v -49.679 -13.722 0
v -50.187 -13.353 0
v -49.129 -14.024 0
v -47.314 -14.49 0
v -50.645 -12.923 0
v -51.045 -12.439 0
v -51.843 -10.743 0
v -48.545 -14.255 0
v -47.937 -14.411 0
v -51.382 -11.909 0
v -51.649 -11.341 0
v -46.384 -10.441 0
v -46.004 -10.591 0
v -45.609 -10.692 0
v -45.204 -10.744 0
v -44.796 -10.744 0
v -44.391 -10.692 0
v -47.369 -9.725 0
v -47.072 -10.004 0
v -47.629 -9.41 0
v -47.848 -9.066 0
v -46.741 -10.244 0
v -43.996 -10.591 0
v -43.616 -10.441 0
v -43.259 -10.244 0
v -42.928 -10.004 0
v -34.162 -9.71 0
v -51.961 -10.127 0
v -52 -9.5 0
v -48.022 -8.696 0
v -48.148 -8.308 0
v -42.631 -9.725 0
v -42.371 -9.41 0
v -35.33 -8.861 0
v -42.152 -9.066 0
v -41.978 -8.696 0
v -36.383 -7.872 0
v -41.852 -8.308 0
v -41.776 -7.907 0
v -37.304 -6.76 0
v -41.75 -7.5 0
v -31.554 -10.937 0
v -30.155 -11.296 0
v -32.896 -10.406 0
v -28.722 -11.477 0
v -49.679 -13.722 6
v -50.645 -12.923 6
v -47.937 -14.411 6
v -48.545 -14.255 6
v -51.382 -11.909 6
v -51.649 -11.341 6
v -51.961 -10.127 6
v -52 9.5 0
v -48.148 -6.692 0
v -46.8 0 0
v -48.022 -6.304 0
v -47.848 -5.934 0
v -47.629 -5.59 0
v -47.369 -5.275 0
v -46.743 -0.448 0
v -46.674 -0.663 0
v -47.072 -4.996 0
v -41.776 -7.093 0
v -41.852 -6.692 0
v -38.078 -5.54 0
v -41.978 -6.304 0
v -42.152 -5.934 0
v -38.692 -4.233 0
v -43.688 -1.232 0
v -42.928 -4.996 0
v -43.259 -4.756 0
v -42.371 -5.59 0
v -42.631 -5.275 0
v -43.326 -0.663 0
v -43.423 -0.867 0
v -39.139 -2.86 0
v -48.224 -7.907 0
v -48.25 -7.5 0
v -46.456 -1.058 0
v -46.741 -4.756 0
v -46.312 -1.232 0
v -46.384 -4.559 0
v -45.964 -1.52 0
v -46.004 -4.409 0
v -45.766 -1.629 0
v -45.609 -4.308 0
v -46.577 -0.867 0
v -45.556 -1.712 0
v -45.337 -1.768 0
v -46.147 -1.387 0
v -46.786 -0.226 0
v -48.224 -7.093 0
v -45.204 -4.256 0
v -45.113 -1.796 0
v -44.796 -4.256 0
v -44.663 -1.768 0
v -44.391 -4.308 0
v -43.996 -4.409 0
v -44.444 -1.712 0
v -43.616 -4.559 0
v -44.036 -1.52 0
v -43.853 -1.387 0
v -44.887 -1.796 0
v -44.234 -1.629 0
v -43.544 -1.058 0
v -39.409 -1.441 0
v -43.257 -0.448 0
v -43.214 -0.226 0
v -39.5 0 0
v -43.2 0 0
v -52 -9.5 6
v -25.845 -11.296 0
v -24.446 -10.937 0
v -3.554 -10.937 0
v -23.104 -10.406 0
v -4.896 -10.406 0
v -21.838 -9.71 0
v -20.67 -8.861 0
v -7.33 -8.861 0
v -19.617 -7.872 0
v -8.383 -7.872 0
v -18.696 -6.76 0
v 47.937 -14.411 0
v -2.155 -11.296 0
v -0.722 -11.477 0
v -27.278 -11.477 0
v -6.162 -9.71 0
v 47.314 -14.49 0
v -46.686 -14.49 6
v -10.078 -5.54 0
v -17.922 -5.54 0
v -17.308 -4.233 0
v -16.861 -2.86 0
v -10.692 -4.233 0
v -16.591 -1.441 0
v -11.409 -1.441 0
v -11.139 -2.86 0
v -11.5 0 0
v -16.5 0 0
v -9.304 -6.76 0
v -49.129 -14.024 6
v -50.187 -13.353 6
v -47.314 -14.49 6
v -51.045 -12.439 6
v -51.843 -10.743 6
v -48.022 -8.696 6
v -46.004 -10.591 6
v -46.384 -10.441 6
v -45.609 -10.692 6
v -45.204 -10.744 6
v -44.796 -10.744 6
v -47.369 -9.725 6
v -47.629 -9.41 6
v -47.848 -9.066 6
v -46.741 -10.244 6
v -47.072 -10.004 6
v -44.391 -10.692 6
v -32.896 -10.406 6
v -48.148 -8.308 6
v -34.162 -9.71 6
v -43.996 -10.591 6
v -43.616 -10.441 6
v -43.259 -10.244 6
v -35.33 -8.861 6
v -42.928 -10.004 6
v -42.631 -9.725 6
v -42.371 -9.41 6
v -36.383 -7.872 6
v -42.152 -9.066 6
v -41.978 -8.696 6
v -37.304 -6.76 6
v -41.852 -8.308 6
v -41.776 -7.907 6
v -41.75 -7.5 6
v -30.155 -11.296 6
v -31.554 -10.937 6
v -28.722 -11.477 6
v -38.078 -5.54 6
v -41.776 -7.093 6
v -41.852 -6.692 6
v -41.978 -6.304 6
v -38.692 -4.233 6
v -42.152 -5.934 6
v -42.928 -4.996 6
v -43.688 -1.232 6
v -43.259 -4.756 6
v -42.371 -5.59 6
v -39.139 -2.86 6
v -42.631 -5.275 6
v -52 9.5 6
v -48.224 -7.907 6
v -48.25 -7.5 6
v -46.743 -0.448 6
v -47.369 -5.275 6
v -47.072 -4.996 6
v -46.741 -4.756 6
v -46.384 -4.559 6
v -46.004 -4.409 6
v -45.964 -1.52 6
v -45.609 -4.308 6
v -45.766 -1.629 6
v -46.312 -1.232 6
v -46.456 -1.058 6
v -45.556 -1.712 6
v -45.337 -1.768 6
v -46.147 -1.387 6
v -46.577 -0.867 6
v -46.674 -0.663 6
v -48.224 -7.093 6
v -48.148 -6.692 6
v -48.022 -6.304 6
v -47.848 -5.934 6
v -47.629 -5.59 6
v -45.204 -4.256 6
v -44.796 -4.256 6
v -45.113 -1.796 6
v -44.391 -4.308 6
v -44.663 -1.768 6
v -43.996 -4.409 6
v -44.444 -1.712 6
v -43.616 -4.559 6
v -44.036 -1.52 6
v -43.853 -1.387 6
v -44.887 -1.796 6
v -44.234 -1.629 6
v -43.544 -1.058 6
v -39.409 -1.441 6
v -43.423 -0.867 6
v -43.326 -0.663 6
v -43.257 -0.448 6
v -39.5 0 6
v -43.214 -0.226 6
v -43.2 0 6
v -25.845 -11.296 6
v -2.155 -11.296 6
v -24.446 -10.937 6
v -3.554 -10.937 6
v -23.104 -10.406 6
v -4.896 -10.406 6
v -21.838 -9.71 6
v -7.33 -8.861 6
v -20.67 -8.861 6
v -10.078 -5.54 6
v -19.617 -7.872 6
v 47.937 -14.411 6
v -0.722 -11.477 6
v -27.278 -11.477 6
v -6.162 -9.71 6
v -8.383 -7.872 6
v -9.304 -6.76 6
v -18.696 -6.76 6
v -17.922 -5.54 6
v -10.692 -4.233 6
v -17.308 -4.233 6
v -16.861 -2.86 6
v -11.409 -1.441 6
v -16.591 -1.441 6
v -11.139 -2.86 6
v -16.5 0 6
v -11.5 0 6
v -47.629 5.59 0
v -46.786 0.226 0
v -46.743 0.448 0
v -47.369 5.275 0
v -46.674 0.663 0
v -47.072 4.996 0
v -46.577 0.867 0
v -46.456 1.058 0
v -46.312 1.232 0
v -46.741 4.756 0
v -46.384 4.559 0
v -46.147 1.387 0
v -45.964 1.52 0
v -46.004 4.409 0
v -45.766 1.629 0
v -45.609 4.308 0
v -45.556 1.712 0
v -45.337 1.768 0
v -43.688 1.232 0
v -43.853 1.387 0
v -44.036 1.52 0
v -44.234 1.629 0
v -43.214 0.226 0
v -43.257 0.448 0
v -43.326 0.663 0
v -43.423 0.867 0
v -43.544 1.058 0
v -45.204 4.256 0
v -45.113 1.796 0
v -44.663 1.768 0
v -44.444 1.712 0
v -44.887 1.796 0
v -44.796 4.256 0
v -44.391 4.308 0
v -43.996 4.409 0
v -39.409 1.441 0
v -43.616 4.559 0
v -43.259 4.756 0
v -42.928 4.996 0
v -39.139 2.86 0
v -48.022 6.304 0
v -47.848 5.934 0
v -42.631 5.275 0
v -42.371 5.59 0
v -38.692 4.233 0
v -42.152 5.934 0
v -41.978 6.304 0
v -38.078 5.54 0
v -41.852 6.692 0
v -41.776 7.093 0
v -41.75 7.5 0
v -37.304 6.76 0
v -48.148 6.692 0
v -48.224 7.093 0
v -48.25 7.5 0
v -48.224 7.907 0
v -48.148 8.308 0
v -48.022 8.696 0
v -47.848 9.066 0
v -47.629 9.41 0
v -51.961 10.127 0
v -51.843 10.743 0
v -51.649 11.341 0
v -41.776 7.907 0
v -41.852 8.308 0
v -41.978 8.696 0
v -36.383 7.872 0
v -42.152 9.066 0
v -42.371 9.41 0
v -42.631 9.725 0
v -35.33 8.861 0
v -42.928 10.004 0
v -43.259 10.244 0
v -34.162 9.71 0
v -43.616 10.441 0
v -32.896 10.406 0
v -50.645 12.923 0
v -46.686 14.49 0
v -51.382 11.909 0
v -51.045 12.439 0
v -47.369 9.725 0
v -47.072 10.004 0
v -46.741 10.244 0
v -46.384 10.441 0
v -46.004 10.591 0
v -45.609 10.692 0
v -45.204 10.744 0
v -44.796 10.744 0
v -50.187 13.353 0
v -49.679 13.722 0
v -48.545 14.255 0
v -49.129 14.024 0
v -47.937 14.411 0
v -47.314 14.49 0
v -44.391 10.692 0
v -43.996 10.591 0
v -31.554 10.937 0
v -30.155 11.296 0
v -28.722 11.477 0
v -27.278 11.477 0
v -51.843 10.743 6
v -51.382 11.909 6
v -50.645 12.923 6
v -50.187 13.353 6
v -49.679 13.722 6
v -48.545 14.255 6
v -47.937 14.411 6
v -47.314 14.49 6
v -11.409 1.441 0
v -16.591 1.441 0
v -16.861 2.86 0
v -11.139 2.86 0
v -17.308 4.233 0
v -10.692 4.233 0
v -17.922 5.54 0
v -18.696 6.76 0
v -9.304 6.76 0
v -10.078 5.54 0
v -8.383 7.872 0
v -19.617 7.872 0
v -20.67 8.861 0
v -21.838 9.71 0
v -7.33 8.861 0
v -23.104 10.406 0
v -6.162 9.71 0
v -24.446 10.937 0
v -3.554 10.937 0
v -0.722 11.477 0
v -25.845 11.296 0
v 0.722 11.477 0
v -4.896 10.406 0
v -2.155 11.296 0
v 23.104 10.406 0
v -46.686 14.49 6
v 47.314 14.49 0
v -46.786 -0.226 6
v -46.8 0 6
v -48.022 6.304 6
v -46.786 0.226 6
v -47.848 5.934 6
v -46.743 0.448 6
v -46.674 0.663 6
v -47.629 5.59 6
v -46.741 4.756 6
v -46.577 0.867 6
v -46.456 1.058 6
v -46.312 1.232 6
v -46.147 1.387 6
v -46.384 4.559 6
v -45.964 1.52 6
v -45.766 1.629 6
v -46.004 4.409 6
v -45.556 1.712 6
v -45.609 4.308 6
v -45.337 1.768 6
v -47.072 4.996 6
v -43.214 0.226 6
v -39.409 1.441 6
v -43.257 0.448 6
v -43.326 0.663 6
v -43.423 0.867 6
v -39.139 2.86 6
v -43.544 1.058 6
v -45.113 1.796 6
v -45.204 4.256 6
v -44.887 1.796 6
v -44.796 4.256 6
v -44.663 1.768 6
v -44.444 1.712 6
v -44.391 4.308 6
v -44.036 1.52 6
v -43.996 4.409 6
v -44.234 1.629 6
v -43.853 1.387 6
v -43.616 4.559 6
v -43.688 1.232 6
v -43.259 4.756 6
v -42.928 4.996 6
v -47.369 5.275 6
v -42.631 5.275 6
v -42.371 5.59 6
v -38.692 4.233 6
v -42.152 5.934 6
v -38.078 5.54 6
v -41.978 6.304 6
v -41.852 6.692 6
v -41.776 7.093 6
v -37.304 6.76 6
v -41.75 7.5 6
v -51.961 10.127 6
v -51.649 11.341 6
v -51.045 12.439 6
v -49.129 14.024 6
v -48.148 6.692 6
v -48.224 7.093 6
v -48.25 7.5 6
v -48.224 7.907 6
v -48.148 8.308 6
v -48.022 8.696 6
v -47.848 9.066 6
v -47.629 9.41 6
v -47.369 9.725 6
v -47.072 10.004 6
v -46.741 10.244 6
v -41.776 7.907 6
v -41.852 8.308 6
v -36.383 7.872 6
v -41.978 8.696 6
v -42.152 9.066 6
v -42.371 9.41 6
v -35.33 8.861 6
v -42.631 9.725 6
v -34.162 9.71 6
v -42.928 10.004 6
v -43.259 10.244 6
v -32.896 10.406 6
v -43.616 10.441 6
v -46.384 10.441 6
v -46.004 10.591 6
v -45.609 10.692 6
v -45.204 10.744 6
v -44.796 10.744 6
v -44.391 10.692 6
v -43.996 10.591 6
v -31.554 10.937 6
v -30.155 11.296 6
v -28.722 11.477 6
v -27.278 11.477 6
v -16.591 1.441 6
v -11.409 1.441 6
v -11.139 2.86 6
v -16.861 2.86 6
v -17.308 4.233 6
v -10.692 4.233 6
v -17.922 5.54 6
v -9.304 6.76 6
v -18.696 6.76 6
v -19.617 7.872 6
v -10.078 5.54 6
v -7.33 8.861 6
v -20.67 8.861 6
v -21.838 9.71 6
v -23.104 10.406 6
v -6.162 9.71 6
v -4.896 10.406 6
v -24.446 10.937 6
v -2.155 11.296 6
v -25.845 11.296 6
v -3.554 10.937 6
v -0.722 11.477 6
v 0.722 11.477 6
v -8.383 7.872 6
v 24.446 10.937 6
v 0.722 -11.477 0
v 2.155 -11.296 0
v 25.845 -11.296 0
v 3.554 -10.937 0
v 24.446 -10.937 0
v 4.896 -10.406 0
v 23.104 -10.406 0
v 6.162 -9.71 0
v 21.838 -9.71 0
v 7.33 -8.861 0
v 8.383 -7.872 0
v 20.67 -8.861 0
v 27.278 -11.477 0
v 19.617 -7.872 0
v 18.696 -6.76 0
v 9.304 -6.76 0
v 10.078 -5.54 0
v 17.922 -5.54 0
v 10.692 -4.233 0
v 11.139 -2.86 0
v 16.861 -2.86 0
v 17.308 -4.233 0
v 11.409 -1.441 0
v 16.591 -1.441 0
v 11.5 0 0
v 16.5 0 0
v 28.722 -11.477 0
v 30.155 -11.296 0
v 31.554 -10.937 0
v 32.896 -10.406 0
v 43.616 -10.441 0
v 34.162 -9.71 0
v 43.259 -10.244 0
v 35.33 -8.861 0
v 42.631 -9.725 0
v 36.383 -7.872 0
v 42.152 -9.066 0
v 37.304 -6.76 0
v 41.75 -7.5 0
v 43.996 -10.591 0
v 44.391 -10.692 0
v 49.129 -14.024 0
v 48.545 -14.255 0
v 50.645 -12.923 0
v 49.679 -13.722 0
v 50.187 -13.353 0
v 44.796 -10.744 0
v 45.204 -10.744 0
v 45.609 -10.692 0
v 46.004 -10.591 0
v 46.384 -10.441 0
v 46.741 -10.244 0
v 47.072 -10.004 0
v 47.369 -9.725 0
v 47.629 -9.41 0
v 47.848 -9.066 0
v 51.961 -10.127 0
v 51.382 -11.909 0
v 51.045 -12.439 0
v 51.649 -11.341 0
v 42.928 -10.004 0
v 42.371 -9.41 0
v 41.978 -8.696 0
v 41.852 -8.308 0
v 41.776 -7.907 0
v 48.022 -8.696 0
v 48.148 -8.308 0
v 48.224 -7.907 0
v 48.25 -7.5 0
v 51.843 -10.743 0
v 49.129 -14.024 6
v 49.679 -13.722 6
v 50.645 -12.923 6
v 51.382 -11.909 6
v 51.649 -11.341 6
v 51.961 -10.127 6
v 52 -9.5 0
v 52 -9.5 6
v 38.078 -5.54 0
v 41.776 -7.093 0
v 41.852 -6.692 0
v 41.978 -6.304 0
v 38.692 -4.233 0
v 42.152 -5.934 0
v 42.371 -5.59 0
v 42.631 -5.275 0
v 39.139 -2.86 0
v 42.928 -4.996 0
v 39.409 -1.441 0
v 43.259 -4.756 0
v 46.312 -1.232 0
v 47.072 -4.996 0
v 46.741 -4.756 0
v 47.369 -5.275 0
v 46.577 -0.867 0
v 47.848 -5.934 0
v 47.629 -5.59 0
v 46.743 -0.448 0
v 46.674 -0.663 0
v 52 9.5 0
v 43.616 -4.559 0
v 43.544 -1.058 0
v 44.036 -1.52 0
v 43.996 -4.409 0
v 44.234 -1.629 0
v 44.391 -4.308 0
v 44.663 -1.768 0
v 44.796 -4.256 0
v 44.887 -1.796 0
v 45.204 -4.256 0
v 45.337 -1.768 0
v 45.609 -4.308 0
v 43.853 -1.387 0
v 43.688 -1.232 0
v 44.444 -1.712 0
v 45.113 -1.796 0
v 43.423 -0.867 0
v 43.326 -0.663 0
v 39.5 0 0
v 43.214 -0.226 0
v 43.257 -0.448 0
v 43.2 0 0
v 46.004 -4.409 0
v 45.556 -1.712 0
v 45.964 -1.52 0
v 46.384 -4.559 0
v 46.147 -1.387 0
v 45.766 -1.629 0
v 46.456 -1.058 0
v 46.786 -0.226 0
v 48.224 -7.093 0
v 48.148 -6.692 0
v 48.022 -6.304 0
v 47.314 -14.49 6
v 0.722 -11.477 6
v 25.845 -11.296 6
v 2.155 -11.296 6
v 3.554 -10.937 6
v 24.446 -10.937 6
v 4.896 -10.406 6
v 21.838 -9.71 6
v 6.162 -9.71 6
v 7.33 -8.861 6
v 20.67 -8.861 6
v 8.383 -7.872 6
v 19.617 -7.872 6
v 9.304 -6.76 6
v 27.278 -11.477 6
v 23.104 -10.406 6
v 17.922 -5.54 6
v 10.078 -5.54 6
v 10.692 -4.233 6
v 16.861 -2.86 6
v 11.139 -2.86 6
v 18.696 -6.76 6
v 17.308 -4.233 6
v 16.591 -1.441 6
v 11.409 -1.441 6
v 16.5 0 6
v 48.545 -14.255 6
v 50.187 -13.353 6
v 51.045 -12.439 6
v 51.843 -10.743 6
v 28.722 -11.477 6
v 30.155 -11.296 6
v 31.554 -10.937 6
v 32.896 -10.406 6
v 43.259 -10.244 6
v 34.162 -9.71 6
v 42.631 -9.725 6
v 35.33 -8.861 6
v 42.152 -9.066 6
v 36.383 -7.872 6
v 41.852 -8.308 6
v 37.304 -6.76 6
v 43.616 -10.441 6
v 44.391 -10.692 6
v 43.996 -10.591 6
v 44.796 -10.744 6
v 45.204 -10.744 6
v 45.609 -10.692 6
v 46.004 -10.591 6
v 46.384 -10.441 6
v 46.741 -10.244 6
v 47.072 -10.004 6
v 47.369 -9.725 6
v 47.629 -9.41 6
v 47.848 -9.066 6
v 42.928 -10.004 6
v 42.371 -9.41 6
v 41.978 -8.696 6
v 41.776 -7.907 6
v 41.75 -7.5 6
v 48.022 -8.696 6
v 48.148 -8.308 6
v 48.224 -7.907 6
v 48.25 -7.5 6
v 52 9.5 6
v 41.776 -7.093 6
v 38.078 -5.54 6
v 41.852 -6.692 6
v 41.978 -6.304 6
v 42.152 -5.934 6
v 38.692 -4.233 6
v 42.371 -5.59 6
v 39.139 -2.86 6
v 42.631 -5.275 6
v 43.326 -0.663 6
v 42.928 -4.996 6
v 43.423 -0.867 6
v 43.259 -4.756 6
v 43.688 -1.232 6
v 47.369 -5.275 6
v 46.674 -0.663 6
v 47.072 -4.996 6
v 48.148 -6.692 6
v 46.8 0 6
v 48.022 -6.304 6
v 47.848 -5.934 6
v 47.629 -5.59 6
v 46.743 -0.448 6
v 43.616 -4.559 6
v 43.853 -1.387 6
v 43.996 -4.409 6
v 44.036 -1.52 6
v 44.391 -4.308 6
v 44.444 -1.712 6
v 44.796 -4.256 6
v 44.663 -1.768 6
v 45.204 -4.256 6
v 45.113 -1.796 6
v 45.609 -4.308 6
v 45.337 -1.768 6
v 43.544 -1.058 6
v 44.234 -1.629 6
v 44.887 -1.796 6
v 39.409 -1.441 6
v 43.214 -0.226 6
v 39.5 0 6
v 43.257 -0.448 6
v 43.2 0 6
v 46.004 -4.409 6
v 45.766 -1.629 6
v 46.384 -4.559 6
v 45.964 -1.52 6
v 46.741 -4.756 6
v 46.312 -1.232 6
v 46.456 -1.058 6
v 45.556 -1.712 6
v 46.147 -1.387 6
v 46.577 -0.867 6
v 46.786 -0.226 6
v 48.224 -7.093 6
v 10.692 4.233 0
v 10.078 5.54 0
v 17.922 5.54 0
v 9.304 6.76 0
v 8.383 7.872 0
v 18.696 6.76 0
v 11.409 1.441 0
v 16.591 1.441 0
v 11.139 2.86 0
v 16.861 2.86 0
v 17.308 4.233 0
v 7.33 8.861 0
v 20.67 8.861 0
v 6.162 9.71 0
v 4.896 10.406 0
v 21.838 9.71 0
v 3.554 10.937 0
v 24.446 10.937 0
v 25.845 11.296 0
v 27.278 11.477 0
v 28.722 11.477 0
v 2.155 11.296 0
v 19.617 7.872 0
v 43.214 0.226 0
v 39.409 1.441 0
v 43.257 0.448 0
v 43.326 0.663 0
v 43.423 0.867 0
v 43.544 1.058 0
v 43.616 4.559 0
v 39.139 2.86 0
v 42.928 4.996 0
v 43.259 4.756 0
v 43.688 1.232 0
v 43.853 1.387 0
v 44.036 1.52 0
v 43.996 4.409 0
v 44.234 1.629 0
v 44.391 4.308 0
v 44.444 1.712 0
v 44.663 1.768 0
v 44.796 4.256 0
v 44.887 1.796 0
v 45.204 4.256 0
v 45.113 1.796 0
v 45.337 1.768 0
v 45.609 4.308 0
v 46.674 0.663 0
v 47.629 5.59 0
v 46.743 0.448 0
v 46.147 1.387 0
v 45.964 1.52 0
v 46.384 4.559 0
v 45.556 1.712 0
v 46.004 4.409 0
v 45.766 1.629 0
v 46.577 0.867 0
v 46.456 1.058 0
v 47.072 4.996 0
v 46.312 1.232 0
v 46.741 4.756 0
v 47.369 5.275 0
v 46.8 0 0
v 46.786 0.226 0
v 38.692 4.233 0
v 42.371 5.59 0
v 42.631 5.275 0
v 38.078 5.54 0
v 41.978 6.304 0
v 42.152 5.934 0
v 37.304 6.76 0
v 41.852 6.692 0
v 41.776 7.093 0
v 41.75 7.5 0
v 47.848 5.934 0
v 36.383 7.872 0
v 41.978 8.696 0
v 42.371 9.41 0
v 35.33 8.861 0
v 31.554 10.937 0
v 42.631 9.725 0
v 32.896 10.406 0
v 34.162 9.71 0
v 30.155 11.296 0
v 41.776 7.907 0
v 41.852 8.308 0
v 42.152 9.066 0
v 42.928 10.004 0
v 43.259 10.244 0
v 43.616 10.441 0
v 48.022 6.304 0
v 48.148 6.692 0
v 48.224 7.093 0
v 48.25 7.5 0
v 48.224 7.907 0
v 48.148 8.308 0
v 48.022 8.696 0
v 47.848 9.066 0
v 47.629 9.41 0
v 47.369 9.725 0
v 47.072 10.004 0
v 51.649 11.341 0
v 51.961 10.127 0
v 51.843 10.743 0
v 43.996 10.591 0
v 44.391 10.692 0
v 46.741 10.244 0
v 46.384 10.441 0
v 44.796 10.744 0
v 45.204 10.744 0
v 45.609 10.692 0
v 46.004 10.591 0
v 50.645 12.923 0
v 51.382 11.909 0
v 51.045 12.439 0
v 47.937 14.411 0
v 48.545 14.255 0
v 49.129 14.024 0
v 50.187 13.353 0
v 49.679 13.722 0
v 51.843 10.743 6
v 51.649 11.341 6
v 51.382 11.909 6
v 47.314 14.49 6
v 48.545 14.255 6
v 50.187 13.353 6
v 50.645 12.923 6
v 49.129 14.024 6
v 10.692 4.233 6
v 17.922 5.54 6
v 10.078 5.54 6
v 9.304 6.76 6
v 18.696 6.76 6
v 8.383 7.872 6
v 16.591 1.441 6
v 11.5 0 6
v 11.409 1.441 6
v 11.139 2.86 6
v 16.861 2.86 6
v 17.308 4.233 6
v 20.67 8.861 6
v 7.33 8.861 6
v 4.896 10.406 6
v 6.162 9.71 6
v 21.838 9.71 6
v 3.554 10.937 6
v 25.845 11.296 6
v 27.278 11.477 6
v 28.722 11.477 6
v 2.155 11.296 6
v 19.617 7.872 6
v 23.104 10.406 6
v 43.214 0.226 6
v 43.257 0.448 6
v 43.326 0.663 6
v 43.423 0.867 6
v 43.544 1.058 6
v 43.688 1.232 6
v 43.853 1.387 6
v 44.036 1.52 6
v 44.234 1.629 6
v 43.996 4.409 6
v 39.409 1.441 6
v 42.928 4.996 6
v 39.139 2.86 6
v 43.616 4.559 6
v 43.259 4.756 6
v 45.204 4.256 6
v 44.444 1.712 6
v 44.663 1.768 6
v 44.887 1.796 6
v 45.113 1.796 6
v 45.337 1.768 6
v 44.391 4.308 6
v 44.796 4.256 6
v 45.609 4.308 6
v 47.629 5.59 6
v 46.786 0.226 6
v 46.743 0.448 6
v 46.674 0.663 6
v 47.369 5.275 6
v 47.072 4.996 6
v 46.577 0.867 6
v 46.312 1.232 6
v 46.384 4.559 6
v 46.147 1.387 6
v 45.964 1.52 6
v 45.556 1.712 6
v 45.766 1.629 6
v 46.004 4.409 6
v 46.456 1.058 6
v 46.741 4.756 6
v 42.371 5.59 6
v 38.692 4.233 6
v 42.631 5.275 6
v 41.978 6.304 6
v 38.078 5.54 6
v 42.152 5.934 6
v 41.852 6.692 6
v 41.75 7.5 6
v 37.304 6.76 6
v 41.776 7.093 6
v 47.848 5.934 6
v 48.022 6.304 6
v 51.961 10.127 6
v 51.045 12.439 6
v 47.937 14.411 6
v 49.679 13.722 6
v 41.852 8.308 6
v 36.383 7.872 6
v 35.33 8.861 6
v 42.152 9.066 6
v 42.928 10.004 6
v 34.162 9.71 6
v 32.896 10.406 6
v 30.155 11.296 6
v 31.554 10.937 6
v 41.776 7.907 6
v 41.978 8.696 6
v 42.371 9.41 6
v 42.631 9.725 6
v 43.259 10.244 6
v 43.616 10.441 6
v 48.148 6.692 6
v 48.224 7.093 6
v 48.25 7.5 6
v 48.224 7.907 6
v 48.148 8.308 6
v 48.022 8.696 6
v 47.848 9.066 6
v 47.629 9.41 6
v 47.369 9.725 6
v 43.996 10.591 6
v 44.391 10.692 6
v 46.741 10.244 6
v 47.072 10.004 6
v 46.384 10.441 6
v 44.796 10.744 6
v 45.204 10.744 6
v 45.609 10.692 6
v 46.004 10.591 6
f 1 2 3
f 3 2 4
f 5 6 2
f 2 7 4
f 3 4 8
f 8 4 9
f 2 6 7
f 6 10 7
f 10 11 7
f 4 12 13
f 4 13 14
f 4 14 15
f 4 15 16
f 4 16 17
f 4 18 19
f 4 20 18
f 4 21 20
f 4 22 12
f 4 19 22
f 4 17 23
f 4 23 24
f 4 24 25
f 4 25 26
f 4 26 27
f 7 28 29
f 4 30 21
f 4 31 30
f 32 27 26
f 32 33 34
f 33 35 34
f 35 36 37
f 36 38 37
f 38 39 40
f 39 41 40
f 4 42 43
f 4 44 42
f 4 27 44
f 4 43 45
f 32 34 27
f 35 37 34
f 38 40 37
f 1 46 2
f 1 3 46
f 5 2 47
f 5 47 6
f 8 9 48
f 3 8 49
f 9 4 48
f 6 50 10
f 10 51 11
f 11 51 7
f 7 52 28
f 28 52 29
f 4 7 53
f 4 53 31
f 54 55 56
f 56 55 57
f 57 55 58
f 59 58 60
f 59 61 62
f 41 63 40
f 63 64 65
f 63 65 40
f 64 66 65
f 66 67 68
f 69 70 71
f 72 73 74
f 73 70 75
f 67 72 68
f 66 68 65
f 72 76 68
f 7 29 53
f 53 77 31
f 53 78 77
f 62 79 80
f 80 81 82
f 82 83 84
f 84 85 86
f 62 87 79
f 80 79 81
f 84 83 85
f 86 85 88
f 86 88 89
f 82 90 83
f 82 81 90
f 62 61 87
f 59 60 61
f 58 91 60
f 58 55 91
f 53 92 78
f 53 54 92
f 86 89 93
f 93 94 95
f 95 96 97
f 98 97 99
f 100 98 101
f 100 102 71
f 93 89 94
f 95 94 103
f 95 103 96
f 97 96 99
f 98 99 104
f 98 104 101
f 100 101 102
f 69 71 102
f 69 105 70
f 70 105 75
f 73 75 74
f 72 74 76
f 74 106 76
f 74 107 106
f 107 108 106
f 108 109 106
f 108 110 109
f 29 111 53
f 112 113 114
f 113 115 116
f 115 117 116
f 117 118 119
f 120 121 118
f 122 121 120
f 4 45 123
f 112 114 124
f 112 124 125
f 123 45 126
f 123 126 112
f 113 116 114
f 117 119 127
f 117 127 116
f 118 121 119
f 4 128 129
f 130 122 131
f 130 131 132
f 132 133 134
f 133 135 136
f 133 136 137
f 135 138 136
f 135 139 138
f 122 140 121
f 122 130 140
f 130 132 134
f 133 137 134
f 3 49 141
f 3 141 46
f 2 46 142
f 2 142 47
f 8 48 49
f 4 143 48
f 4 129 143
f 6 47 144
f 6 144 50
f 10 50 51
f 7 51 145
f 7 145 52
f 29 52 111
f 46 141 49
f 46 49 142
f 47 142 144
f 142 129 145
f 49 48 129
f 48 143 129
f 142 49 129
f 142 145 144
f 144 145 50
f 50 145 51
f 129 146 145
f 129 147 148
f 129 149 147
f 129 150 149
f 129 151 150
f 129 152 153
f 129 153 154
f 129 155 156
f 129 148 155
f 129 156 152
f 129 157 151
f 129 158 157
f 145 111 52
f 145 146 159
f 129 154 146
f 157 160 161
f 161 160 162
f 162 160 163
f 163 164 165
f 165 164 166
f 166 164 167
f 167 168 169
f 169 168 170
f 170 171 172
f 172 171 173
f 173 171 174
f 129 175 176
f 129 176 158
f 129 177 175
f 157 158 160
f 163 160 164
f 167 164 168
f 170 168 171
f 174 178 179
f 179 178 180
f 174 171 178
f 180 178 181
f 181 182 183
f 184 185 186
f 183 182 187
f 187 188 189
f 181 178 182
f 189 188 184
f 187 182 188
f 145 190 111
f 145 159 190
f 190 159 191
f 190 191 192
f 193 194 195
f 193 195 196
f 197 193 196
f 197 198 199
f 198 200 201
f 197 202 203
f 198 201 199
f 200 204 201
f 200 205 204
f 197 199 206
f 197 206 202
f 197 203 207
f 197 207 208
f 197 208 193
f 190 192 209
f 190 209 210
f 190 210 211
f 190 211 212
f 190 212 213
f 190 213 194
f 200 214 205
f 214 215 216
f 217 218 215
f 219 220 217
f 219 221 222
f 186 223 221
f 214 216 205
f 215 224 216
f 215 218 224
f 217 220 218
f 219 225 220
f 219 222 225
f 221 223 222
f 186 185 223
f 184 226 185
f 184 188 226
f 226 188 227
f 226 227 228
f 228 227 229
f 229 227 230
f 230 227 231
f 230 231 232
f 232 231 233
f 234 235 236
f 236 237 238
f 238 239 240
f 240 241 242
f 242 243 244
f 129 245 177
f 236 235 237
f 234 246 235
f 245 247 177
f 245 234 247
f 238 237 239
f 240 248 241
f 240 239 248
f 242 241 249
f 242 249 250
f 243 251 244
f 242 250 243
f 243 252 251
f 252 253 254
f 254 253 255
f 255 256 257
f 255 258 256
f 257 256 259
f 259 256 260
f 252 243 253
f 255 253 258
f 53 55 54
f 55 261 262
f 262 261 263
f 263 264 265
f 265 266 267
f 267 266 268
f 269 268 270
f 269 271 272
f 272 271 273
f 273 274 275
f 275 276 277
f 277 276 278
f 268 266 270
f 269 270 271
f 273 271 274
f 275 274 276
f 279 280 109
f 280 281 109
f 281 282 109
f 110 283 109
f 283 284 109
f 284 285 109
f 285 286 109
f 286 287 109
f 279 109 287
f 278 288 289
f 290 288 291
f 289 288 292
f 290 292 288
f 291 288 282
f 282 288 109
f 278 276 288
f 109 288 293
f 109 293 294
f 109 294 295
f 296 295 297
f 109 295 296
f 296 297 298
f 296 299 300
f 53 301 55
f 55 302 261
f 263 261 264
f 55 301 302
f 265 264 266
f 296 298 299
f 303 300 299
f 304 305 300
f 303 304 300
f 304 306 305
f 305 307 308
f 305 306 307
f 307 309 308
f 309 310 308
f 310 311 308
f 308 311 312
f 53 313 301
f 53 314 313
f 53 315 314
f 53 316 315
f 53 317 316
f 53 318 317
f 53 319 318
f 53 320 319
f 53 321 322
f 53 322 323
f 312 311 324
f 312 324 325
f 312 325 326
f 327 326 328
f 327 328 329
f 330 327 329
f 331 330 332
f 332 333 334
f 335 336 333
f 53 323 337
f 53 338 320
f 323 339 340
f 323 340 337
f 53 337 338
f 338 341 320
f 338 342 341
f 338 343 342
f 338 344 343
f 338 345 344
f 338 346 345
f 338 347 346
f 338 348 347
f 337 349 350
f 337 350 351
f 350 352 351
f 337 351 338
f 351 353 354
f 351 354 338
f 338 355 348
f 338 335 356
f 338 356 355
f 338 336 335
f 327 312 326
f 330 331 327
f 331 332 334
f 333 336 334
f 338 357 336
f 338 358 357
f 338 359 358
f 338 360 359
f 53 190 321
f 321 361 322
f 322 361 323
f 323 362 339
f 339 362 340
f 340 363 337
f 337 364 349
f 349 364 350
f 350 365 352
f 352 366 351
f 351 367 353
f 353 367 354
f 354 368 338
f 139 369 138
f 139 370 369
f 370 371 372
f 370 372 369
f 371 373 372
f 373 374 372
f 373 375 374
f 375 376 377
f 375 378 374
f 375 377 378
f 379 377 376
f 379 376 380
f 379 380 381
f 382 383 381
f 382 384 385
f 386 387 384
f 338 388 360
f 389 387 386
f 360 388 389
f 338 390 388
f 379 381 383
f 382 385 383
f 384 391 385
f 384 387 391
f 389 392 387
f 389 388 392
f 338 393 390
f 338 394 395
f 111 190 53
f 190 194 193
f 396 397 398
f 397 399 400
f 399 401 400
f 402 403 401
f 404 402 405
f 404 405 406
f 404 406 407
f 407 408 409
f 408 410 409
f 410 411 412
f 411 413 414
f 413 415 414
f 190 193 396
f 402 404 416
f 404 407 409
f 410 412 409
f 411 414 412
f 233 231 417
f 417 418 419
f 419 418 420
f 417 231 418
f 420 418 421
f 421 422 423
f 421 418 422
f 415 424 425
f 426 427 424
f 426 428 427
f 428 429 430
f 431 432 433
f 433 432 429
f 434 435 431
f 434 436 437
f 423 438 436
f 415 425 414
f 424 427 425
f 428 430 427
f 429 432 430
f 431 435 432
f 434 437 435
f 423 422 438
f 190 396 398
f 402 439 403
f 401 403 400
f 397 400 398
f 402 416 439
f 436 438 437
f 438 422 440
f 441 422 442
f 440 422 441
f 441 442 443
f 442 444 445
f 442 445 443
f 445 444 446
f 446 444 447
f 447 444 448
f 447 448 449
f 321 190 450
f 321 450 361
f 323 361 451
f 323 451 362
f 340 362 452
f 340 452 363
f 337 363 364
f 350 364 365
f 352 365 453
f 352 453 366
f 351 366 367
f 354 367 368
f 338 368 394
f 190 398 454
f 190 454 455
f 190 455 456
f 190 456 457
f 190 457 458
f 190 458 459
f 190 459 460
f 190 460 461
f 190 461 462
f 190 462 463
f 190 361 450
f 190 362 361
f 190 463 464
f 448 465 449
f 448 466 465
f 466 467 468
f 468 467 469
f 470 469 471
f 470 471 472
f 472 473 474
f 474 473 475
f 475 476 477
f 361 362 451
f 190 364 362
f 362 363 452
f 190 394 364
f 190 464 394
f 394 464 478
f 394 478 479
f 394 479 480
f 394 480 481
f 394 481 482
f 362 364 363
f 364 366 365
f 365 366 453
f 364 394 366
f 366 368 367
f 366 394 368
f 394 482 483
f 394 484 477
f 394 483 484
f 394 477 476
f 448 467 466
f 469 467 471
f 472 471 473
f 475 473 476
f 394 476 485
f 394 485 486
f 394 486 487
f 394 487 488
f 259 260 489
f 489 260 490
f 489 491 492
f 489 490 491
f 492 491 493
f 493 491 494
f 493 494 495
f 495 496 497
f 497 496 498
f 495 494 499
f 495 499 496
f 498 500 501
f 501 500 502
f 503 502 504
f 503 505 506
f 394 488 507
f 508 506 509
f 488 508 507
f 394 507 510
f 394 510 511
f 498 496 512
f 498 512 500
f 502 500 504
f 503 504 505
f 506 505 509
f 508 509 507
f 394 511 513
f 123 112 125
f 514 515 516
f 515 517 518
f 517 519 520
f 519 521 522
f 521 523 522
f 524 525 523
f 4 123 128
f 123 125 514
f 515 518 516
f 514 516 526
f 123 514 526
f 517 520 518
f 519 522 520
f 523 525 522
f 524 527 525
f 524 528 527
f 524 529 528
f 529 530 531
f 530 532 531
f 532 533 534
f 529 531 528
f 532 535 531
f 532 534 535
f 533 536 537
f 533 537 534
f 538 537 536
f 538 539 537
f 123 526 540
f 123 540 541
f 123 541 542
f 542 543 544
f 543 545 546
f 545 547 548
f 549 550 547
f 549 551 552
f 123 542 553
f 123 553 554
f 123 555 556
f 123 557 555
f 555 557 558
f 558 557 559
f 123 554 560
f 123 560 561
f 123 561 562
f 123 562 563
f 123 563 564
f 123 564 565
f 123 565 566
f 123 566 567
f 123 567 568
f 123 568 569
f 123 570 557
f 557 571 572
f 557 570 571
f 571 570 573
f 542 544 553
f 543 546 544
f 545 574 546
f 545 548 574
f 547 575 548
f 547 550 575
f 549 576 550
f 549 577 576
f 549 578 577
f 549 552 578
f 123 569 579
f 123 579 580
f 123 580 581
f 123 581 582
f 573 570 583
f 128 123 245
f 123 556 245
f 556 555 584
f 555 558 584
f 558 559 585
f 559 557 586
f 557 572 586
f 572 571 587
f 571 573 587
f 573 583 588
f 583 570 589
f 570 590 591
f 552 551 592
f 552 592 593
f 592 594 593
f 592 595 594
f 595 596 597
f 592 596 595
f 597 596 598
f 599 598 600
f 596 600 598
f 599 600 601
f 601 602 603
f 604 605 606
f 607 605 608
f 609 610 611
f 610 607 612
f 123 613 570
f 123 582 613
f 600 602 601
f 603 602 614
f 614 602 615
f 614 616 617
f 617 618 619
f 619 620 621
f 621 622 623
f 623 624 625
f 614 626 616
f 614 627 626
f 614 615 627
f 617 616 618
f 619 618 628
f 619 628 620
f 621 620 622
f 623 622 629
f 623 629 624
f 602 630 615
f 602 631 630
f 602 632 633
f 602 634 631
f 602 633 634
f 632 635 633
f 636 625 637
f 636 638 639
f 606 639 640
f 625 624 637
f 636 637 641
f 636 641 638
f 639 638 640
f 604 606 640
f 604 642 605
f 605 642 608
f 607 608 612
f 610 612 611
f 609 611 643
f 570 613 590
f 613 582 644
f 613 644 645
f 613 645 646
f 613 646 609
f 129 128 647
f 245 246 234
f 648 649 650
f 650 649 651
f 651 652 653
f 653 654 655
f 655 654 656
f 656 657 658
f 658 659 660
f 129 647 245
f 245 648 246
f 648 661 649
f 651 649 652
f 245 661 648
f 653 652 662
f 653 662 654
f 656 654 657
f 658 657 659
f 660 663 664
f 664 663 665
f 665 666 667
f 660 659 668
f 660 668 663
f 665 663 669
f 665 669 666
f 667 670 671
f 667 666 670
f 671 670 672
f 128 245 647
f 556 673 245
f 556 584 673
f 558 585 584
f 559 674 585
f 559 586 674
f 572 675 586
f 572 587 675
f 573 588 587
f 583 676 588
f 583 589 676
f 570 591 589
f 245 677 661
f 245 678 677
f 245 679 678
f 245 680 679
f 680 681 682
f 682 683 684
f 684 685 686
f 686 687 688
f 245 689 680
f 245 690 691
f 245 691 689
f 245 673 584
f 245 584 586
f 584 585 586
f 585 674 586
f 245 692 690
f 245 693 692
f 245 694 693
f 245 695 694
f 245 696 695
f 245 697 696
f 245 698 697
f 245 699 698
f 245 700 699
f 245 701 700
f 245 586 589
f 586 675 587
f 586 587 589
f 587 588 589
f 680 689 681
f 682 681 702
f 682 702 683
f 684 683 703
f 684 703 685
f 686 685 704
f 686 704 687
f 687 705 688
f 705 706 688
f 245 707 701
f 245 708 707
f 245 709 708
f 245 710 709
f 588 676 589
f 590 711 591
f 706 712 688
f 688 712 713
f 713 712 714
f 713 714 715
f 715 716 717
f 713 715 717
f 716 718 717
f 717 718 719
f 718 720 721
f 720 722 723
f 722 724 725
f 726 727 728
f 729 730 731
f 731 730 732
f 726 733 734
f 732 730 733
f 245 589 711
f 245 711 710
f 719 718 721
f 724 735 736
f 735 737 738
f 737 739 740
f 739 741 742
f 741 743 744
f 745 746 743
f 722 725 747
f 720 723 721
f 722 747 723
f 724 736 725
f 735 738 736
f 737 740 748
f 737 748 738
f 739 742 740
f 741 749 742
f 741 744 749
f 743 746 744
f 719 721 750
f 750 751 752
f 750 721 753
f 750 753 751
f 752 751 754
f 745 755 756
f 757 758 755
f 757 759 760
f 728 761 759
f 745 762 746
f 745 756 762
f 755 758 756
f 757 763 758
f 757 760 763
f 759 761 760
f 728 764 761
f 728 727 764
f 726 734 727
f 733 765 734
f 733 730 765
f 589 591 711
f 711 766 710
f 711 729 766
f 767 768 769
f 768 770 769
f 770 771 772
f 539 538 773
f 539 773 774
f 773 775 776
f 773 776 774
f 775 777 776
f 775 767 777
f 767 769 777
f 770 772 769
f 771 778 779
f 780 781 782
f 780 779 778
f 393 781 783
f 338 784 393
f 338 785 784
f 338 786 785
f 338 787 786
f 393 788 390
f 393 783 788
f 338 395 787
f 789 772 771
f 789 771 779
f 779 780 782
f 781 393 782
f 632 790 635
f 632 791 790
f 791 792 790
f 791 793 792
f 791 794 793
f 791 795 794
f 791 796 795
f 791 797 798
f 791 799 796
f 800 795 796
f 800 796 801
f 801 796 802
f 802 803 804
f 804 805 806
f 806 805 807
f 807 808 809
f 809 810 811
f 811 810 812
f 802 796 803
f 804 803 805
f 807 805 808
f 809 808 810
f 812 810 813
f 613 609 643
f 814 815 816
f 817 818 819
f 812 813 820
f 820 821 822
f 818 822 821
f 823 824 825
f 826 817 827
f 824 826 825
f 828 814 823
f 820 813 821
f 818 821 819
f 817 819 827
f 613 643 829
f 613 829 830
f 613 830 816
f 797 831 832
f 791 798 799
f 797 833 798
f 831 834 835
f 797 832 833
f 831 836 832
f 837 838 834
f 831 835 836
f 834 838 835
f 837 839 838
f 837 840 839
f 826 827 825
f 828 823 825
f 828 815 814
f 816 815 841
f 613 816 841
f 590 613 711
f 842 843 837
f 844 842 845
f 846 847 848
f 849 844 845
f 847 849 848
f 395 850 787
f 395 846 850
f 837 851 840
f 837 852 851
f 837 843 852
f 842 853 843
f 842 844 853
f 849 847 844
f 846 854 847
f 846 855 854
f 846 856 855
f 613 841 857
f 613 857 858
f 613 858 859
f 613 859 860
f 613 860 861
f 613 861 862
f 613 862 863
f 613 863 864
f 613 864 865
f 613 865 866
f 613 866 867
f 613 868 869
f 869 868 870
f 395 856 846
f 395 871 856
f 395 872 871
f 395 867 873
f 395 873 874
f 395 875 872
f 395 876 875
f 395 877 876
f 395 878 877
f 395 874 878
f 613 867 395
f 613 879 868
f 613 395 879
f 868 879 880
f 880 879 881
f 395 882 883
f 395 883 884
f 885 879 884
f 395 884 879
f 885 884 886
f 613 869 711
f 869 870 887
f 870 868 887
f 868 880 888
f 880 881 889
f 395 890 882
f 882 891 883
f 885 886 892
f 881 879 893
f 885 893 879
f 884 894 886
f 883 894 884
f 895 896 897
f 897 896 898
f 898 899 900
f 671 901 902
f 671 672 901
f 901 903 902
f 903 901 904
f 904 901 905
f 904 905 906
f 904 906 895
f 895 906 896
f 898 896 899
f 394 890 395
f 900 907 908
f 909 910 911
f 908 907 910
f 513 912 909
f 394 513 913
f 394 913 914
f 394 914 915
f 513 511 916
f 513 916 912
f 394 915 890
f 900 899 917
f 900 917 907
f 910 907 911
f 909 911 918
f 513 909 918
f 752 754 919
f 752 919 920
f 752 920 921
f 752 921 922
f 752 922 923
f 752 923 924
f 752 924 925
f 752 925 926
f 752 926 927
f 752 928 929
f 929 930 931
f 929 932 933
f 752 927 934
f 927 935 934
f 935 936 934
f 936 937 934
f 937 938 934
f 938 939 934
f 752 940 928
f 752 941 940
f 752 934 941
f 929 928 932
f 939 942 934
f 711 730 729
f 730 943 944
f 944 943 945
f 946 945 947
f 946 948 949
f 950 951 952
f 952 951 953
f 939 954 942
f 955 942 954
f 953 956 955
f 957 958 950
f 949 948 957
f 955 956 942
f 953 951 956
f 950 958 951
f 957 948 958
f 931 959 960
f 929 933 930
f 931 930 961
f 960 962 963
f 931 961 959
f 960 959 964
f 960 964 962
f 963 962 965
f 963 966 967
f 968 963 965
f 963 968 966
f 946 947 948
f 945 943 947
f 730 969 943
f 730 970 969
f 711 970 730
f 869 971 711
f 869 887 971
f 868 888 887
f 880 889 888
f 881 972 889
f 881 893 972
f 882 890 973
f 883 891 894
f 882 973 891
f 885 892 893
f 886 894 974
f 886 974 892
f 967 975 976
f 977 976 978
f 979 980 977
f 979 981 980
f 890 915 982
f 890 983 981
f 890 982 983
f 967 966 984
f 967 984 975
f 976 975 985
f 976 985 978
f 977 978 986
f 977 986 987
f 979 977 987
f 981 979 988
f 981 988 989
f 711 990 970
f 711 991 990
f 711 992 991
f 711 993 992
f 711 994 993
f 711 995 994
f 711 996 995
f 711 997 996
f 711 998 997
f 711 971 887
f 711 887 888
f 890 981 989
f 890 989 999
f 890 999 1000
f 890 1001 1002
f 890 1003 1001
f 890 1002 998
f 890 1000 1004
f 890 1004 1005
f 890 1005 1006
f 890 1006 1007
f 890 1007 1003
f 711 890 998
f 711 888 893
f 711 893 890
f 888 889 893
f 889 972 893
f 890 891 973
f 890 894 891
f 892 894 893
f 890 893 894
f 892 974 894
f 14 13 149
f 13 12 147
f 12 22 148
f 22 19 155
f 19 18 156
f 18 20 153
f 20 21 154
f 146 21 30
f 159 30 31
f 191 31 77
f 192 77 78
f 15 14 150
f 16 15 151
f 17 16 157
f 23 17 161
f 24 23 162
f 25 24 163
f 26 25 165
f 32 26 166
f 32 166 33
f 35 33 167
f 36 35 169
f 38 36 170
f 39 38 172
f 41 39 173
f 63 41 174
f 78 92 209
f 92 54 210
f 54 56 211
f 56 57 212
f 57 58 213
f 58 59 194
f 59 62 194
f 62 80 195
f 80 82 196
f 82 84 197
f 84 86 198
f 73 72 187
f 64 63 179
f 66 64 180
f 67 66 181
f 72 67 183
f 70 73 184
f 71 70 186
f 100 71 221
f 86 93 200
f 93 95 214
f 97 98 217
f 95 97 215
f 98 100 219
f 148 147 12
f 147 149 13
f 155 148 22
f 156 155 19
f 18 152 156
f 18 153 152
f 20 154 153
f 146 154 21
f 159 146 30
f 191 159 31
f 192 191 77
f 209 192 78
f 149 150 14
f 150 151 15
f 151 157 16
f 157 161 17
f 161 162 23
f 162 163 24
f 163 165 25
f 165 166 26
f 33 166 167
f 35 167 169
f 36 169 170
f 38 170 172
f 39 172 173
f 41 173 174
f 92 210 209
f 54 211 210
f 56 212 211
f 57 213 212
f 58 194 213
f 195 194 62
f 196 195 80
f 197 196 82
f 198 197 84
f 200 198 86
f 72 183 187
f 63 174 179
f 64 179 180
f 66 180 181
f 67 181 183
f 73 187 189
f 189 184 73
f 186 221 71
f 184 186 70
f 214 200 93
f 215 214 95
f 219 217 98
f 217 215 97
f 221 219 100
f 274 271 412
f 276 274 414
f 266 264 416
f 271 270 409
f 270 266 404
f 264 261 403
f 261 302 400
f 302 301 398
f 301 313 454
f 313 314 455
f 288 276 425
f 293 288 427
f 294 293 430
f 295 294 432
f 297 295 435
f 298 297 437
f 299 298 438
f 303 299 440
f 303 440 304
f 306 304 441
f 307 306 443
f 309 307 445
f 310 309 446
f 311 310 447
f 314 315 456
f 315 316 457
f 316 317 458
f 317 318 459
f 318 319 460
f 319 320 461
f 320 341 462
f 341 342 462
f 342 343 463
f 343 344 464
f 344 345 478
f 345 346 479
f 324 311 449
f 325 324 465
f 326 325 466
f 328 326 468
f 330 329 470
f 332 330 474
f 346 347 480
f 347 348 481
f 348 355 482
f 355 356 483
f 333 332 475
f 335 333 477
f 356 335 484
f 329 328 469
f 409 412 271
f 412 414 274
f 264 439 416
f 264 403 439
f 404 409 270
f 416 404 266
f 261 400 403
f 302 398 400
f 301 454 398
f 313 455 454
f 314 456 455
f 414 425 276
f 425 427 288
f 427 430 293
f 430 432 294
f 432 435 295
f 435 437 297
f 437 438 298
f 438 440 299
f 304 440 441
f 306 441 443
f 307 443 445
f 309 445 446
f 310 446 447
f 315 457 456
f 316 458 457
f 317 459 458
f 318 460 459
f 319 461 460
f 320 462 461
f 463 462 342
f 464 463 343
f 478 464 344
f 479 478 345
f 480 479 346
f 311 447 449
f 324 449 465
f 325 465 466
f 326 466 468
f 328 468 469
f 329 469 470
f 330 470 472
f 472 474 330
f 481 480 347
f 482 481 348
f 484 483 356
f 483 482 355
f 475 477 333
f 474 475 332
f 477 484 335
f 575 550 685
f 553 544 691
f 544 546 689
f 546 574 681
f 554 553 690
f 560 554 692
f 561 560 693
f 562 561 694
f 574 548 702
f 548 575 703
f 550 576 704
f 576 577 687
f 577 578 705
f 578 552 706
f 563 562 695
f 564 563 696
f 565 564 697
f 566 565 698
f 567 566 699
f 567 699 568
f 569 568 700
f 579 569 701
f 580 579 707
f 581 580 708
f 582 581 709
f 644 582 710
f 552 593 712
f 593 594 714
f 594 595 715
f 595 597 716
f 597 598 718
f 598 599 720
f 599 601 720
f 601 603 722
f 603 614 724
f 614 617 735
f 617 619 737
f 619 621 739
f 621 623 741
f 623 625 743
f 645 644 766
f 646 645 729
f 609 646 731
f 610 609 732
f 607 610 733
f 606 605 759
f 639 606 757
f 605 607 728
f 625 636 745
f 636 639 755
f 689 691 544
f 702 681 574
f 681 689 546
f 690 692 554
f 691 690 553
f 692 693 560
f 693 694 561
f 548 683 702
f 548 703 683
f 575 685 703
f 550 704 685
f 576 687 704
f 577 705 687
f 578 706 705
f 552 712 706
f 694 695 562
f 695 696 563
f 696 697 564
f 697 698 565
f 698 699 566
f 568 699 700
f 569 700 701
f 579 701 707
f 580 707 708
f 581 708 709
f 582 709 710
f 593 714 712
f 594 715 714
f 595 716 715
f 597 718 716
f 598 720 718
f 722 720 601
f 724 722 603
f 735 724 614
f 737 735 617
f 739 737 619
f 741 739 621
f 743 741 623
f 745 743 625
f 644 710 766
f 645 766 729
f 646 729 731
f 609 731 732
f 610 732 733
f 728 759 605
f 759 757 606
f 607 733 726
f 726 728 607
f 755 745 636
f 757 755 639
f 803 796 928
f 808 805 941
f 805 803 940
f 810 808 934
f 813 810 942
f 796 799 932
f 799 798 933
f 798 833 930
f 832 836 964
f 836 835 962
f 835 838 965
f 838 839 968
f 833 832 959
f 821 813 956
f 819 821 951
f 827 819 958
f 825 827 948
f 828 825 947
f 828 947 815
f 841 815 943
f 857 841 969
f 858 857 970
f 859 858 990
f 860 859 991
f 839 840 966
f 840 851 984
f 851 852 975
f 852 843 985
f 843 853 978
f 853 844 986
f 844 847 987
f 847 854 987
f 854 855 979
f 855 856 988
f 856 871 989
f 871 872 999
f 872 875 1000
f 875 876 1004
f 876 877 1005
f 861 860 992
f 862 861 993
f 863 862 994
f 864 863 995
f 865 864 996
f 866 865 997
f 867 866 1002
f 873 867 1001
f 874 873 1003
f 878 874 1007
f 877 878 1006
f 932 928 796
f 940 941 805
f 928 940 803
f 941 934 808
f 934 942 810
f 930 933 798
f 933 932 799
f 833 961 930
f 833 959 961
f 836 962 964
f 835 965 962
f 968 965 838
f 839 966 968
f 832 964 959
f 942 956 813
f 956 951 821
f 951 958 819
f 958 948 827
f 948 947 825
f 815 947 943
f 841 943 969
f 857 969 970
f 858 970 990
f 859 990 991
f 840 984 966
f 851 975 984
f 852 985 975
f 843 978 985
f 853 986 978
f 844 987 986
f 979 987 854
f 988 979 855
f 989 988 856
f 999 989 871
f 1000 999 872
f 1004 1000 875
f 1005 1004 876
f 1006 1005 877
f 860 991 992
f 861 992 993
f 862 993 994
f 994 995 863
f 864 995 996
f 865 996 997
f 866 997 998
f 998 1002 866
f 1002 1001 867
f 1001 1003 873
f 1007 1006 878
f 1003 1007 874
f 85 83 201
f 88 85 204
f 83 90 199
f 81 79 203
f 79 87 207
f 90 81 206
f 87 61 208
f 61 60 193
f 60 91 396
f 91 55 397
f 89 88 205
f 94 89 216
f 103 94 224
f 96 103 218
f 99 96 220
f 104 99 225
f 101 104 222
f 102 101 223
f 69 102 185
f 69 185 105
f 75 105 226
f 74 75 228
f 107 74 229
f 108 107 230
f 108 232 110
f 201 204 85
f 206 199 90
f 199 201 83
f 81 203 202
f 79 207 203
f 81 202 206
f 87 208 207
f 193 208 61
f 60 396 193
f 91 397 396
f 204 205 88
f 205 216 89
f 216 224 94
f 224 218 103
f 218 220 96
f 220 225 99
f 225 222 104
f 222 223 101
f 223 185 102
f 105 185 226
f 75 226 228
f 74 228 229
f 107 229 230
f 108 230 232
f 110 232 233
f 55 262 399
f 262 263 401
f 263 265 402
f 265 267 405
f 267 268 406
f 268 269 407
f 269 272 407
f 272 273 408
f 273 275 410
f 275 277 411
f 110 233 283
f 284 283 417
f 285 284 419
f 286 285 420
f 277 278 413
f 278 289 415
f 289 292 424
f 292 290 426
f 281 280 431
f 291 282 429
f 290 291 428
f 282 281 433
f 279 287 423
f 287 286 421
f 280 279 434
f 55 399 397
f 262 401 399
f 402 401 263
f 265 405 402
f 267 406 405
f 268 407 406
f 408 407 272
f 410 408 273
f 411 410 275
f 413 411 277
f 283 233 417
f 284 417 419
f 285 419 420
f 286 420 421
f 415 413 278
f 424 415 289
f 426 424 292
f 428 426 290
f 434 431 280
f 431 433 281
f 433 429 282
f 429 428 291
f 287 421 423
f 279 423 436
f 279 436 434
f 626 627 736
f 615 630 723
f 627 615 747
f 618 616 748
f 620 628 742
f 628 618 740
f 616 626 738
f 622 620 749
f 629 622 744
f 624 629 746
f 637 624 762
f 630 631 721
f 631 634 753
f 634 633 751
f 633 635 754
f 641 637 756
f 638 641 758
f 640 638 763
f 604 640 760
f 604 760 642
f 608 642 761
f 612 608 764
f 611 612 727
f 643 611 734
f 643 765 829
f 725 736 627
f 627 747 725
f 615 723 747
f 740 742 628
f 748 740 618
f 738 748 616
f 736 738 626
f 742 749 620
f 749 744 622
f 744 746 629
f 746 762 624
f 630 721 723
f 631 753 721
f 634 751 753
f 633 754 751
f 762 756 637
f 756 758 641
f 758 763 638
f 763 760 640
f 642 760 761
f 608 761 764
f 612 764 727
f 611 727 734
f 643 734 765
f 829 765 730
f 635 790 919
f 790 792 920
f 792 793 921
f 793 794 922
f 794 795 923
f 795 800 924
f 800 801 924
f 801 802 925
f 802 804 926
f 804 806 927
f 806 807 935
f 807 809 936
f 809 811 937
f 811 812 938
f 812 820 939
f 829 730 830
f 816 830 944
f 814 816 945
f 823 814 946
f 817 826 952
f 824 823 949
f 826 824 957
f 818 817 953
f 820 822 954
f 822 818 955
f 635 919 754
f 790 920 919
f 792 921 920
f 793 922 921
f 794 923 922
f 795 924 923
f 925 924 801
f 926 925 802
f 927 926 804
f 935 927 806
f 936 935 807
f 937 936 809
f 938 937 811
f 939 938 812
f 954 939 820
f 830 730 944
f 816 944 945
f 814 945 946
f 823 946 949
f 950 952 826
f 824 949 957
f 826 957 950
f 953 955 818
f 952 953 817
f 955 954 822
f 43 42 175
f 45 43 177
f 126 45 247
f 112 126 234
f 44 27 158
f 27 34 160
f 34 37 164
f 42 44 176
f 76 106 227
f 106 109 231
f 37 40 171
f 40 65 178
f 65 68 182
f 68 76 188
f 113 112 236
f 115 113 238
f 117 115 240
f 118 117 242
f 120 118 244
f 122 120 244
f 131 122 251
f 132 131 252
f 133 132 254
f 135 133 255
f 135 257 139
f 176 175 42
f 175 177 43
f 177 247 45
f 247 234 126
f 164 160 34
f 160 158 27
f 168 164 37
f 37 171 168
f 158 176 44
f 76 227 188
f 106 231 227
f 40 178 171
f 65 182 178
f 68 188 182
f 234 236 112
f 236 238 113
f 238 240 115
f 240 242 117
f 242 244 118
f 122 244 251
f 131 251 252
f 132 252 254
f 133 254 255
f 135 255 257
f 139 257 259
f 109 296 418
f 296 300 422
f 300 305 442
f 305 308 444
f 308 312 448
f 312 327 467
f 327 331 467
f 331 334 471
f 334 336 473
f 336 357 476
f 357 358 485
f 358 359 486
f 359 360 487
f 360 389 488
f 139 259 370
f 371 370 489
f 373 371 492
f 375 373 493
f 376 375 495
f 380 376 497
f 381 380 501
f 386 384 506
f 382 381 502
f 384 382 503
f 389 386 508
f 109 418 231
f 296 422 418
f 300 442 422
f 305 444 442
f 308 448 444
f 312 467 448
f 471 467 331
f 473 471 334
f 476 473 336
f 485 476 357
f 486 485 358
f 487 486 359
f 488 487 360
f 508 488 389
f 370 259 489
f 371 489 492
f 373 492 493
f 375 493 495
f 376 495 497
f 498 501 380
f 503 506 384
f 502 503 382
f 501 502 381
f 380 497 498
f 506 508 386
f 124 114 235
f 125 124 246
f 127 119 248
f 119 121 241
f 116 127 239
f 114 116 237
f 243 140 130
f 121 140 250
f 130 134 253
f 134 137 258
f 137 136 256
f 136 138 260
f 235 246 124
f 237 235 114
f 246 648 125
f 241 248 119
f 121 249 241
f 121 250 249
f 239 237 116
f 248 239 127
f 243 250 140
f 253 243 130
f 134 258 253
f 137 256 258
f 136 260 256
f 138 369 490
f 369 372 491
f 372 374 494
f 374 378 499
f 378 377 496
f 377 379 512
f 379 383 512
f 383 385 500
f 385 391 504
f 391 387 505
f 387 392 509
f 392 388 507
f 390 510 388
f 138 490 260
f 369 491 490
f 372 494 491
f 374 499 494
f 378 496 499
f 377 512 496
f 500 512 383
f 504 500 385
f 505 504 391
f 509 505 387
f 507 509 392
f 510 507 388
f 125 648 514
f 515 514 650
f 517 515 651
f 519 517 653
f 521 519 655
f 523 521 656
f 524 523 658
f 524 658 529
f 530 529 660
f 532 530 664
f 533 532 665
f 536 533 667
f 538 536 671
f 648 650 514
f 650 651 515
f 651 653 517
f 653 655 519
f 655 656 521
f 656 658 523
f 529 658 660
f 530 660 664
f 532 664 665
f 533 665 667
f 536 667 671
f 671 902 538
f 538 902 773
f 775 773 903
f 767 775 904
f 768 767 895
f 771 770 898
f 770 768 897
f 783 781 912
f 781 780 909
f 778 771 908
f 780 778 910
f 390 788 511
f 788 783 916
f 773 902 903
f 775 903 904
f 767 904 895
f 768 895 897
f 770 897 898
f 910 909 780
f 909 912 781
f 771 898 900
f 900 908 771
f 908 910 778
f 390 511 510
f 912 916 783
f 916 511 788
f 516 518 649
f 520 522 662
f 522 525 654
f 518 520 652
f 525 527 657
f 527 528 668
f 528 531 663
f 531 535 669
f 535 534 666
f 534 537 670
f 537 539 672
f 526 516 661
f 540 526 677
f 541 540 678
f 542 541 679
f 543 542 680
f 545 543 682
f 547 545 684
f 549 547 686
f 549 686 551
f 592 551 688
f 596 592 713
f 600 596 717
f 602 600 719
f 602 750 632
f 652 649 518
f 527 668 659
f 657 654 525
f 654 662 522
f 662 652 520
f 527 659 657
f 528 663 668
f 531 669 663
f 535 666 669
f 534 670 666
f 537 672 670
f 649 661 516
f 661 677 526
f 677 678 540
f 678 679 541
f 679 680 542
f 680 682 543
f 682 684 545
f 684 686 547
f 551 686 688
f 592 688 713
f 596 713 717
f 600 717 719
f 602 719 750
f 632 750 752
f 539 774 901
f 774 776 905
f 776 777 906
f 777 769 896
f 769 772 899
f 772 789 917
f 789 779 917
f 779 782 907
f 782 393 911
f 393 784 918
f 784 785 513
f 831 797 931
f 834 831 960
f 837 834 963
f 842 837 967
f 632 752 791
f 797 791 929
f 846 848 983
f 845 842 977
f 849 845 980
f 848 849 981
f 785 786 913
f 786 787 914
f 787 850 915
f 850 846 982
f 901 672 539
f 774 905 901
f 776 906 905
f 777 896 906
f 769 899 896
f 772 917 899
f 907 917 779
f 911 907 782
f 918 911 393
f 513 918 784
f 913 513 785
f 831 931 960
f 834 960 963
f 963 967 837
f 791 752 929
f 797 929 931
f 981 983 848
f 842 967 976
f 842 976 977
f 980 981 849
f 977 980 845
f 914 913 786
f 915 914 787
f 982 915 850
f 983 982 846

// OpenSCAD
$fn = 50;

difference() {
	union() {
		hull() {
			translate(v = [-47.0, 9.5, 0]) {
				cylinder(h = 6, r = 5);
			}
			translate(v = [47.0, 9.5, 0]) {
				cylinder(h = 6, r = 5);
			}
			translate(v = [-47.0, -9.5, 0]) {
				cylinder(h = 6, r = 5);
			}
			translate(v = [47.0, -9.5, 0]) {
				cylinder(h = 6, r = 5);
			}
		}
	}
	union() {
		translate(v = [-45.0, -7.5, 0]) {
			cylinder(h = 6, r = 3.25);
		}
		translate(v = [-45.0, 7.5, 0]) {
			cylinder(h = 6, r = 3.25);
		}
		translate(v = [45.0, -7.5, 0]) {
			cylinder(h = 6, r = 3.25);
		}
		translate(v = [45.0, 7.5, 0]) {
			cylinder(h = 6, r = 3.25);
		}
		translate(v = [-45.0, 0.0, 0]) {
			cylinder(h = 6, r = 1.8);
		}
		translate(v = [45.0, 0.0, 0]) {
			cylinder(h = 6, r = 1.8);
		}
		translate(v = [-28.0, 0, 0.0]) {
			cylinder(h = 6, r = 11.5);
		}
		cylinder(h = 6, r = 11.5);
		translate(v = [28.0, 0, 0.0]) {
			cylinder(h = 6, r = 11.5);
		}
	}
}
